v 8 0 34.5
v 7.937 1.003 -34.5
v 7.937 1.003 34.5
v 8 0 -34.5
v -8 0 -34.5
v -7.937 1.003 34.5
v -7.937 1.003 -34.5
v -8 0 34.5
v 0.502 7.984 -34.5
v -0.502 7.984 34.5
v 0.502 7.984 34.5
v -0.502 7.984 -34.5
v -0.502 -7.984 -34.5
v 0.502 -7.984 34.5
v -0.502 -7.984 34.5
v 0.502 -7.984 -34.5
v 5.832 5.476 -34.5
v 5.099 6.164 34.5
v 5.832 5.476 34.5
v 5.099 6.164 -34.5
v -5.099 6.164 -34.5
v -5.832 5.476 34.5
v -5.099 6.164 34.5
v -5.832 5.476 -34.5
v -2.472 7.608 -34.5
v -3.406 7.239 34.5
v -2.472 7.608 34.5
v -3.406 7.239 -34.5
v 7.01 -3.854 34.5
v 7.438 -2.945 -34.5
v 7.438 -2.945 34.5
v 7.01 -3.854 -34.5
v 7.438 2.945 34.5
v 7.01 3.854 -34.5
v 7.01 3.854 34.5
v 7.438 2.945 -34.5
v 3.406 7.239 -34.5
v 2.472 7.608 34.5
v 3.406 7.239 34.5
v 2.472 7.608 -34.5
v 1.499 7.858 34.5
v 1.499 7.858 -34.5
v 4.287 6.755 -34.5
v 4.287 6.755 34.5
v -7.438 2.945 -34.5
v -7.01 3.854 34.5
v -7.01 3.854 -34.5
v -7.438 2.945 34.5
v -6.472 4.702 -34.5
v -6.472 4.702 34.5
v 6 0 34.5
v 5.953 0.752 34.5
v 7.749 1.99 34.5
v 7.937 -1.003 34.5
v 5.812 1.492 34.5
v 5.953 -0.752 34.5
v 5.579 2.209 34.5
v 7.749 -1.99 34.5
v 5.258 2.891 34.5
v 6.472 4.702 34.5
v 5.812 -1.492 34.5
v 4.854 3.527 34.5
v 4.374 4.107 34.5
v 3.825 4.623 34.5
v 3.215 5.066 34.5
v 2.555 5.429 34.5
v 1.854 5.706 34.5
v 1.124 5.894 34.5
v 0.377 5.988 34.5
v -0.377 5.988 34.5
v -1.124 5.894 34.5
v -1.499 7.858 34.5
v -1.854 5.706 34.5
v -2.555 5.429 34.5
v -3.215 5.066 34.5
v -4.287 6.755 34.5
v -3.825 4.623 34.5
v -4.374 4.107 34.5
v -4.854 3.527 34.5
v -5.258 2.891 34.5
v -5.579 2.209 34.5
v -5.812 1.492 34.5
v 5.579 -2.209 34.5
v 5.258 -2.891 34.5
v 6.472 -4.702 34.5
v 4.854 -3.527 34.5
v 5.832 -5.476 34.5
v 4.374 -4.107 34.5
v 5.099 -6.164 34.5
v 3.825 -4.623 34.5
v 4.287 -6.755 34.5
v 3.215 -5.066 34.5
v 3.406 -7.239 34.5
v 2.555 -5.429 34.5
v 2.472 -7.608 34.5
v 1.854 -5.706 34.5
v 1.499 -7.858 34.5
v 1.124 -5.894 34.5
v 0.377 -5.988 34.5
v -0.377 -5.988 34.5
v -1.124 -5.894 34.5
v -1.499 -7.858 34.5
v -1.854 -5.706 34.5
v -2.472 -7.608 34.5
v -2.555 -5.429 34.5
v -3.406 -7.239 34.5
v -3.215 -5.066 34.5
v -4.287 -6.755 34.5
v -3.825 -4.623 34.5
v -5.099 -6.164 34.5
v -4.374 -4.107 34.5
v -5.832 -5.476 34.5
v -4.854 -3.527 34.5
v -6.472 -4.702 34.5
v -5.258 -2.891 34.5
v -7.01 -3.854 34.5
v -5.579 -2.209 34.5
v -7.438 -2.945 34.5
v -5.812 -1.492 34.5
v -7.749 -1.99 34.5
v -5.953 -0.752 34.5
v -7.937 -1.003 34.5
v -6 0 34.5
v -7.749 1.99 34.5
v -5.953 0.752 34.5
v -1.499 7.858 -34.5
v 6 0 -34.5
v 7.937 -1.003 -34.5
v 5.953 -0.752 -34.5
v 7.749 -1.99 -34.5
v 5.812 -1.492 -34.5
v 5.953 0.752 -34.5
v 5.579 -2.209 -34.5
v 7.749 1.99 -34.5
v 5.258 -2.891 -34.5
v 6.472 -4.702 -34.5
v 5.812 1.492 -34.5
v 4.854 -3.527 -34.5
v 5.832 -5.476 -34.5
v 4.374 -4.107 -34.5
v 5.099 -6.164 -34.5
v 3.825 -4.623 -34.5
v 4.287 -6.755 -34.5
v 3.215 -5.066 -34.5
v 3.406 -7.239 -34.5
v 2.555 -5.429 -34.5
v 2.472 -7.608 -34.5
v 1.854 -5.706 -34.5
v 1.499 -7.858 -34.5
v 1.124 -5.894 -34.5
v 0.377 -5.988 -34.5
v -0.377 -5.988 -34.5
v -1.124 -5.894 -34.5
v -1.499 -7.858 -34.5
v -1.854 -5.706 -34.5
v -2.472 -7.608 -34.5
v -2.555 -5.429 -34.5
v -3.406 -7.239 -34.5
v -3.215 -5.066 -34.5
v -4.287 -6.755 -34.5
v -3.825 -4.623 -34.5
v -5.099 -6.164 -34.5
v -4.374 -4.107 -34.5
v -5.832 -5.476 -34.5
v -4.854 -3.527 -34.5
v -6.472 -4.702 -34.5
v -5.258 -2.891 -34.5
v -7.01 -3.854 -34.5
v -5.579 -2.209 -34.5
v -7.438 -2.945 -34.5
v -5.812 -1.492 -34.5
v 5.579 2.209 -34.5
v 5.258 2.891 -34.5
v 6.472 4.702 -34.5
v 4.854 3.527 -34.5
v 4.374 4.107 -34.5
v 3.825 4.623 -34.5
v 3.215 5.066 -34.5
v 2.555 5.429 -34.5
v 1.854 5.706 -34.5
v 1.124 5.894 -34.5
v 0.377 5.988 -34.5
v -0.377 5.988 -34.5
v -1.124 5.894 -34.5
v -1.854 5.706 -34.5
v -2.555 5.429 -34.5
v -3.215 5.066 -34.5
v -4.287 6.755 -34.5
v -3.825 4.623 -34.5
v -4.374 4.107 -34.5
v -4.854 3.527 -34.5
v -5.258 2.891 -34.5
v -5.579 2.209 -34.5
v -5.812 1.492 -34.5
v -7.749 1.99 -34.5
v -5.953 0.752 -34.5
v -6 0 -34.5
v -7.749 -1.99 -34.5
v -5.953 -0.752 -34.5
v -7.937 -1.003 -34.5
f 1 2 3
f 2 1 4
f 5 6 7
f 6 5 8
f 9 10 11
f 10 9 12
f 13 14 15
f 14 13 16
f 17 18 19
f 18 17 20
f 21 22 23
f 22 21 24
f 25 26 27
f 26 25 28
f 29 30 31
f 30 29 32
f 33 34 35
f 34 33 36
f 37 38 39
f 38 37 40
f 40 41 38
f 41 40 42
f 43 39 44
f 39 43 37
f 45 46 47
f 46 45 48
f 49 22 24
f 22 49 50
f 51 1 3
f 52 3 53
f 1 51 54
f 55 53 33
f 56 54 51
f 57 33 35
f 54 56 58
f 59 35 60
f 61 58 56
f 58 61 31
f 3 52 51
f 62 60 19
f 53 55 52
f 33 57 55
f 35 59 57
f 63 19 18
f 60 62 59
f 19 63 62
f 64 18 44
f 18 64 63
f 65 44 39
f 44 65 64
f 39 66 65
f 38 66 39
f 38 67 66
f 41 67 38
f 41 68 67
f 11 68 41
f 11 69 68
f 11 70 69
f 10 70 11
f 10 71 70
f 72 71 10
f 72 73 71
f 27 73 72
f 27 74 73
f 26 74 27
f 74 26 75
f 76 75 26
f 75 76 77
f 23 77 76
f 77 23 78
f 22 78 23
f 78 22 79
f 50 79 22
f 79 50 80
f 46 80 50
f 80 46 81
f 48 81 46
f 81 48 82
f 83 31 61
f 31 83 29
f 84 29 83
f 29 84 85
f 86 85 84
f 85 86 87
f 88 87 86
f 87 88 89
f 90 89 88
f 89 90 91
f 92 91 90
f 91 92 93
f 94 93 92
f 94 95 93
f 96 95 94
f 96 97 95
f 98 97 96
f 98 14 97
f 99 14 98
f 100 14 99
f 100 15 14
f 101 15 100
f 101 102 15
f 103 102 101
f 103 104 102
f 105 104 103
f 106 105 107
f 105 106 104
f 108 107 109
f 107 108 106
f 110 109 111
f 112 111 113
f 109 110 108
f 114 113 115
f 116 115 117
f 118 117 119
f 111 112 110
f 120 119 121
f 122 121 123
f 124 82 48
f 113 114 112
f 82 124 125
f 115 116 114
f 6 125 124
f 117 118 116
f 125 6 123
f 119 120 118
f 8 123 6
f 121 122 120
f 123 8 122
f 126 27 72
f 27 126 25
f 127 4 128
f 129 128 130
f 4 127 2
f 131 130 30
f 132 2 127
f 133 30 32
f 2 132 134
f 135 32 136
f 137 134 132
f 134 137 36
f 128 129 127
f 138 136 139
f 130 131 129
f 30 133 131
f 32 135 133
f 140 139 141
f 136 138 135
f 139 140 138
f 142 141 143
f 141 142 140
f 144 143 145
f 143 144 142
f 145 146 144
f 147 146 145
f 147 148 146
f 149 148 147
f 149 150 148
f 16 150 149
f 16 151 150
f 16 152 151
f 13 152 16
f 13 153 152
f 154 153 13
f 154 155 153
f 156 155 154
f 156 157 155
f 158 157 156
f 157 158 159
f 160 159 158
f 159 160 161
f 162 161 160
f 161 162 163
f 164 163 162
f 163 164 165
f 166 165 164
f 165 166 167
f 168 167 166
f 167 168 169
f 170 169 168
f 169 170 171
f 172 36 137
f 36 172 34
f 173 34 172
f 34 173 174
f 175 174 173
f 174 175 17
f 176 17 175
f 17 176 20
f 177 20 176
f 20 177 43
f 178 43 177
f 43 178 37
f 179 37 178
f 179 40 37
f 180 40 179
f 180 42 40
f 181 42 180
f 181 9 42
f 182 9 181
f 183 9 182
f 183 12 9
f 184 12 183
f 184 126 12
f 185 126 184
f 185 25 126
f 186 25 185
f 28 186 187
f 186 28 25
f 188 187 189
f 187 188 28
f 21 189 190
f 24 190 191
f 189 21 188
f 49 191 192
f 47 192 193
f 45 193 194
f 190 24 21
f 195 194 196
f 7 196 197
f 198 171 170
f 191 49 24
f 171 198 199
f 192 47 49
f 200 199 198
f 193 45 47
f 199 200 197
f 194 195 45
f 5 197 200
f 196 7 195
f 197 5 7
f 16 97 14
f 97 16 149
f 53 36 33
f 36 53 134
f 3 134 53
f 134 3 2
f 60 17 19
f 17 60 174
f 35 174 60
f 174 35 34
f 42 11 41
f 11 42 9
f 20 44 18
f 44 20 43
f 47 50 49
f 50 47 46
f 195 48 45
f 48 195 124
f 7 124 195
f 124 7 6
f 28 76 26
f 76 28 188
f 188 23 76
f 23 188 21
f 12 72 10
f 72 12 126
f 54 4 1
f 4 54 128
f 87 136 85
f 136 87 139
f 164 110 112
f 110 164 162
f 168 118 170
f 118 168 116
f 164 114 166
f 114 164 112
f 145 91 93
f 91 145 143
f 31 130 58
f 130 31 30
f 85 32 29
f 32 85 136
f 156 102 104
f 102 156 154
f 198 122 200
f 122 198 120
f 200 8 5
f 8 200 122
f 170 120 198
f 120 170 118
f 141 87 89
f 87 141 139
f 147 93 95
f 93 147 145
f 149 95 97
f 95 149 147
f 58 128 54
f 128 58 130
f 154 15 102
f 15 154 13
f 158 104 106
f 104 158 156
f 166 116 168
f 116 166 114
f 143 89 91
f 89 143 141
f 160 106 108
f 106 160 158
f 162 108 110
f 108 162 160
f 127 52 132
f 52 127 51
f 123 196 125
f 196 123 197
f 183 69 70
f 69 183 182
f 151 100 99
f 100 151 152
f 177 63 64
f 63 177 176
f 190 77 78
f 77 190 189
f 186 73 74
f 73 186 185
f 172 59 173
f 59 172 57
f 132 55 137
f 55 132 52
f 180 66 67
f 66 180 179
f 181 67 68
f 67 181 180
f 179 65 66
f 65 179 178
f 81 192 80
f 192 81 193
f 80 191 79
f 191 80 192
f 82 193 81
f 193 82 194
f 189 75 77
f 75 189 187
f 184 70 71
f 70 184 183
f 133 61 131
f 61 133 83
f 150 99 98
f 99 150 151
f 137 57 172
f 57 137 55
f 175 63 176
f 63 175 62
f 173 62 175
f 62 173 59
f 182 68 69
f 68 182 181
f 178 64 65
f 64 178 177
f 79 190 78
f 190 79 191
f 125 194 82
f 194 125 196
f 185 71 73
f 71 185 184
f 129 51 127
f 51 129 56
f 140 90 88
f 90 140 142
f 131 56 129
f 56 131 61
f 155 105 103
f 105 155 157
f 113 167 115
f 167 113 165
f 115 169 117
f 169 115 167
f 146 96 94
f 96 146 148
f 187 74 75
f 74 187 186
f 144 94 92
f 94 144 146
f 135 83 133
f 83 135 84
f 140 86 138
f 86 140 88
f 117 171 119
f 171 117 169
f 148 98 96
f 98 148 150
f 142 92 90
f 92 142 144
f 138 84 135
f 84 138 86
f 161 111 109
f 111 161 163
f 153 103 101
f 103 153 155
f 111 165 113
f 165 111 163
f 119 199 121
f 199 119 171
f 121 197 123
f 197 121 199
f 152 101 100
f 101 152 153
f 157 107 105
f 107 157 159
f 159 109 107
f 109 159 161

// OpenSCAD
$fn = 50;


difference() {
	union() {
		translate(v = [0, 0, -34.5000000000]) {
			cylinder(h = 69, r = 8.0000000000);
		}
	}
	union() {
		translate(v = [0, 0, -100.0000000000]) {
			cylinder(h = 200, r = 6);
		}
	}
}
